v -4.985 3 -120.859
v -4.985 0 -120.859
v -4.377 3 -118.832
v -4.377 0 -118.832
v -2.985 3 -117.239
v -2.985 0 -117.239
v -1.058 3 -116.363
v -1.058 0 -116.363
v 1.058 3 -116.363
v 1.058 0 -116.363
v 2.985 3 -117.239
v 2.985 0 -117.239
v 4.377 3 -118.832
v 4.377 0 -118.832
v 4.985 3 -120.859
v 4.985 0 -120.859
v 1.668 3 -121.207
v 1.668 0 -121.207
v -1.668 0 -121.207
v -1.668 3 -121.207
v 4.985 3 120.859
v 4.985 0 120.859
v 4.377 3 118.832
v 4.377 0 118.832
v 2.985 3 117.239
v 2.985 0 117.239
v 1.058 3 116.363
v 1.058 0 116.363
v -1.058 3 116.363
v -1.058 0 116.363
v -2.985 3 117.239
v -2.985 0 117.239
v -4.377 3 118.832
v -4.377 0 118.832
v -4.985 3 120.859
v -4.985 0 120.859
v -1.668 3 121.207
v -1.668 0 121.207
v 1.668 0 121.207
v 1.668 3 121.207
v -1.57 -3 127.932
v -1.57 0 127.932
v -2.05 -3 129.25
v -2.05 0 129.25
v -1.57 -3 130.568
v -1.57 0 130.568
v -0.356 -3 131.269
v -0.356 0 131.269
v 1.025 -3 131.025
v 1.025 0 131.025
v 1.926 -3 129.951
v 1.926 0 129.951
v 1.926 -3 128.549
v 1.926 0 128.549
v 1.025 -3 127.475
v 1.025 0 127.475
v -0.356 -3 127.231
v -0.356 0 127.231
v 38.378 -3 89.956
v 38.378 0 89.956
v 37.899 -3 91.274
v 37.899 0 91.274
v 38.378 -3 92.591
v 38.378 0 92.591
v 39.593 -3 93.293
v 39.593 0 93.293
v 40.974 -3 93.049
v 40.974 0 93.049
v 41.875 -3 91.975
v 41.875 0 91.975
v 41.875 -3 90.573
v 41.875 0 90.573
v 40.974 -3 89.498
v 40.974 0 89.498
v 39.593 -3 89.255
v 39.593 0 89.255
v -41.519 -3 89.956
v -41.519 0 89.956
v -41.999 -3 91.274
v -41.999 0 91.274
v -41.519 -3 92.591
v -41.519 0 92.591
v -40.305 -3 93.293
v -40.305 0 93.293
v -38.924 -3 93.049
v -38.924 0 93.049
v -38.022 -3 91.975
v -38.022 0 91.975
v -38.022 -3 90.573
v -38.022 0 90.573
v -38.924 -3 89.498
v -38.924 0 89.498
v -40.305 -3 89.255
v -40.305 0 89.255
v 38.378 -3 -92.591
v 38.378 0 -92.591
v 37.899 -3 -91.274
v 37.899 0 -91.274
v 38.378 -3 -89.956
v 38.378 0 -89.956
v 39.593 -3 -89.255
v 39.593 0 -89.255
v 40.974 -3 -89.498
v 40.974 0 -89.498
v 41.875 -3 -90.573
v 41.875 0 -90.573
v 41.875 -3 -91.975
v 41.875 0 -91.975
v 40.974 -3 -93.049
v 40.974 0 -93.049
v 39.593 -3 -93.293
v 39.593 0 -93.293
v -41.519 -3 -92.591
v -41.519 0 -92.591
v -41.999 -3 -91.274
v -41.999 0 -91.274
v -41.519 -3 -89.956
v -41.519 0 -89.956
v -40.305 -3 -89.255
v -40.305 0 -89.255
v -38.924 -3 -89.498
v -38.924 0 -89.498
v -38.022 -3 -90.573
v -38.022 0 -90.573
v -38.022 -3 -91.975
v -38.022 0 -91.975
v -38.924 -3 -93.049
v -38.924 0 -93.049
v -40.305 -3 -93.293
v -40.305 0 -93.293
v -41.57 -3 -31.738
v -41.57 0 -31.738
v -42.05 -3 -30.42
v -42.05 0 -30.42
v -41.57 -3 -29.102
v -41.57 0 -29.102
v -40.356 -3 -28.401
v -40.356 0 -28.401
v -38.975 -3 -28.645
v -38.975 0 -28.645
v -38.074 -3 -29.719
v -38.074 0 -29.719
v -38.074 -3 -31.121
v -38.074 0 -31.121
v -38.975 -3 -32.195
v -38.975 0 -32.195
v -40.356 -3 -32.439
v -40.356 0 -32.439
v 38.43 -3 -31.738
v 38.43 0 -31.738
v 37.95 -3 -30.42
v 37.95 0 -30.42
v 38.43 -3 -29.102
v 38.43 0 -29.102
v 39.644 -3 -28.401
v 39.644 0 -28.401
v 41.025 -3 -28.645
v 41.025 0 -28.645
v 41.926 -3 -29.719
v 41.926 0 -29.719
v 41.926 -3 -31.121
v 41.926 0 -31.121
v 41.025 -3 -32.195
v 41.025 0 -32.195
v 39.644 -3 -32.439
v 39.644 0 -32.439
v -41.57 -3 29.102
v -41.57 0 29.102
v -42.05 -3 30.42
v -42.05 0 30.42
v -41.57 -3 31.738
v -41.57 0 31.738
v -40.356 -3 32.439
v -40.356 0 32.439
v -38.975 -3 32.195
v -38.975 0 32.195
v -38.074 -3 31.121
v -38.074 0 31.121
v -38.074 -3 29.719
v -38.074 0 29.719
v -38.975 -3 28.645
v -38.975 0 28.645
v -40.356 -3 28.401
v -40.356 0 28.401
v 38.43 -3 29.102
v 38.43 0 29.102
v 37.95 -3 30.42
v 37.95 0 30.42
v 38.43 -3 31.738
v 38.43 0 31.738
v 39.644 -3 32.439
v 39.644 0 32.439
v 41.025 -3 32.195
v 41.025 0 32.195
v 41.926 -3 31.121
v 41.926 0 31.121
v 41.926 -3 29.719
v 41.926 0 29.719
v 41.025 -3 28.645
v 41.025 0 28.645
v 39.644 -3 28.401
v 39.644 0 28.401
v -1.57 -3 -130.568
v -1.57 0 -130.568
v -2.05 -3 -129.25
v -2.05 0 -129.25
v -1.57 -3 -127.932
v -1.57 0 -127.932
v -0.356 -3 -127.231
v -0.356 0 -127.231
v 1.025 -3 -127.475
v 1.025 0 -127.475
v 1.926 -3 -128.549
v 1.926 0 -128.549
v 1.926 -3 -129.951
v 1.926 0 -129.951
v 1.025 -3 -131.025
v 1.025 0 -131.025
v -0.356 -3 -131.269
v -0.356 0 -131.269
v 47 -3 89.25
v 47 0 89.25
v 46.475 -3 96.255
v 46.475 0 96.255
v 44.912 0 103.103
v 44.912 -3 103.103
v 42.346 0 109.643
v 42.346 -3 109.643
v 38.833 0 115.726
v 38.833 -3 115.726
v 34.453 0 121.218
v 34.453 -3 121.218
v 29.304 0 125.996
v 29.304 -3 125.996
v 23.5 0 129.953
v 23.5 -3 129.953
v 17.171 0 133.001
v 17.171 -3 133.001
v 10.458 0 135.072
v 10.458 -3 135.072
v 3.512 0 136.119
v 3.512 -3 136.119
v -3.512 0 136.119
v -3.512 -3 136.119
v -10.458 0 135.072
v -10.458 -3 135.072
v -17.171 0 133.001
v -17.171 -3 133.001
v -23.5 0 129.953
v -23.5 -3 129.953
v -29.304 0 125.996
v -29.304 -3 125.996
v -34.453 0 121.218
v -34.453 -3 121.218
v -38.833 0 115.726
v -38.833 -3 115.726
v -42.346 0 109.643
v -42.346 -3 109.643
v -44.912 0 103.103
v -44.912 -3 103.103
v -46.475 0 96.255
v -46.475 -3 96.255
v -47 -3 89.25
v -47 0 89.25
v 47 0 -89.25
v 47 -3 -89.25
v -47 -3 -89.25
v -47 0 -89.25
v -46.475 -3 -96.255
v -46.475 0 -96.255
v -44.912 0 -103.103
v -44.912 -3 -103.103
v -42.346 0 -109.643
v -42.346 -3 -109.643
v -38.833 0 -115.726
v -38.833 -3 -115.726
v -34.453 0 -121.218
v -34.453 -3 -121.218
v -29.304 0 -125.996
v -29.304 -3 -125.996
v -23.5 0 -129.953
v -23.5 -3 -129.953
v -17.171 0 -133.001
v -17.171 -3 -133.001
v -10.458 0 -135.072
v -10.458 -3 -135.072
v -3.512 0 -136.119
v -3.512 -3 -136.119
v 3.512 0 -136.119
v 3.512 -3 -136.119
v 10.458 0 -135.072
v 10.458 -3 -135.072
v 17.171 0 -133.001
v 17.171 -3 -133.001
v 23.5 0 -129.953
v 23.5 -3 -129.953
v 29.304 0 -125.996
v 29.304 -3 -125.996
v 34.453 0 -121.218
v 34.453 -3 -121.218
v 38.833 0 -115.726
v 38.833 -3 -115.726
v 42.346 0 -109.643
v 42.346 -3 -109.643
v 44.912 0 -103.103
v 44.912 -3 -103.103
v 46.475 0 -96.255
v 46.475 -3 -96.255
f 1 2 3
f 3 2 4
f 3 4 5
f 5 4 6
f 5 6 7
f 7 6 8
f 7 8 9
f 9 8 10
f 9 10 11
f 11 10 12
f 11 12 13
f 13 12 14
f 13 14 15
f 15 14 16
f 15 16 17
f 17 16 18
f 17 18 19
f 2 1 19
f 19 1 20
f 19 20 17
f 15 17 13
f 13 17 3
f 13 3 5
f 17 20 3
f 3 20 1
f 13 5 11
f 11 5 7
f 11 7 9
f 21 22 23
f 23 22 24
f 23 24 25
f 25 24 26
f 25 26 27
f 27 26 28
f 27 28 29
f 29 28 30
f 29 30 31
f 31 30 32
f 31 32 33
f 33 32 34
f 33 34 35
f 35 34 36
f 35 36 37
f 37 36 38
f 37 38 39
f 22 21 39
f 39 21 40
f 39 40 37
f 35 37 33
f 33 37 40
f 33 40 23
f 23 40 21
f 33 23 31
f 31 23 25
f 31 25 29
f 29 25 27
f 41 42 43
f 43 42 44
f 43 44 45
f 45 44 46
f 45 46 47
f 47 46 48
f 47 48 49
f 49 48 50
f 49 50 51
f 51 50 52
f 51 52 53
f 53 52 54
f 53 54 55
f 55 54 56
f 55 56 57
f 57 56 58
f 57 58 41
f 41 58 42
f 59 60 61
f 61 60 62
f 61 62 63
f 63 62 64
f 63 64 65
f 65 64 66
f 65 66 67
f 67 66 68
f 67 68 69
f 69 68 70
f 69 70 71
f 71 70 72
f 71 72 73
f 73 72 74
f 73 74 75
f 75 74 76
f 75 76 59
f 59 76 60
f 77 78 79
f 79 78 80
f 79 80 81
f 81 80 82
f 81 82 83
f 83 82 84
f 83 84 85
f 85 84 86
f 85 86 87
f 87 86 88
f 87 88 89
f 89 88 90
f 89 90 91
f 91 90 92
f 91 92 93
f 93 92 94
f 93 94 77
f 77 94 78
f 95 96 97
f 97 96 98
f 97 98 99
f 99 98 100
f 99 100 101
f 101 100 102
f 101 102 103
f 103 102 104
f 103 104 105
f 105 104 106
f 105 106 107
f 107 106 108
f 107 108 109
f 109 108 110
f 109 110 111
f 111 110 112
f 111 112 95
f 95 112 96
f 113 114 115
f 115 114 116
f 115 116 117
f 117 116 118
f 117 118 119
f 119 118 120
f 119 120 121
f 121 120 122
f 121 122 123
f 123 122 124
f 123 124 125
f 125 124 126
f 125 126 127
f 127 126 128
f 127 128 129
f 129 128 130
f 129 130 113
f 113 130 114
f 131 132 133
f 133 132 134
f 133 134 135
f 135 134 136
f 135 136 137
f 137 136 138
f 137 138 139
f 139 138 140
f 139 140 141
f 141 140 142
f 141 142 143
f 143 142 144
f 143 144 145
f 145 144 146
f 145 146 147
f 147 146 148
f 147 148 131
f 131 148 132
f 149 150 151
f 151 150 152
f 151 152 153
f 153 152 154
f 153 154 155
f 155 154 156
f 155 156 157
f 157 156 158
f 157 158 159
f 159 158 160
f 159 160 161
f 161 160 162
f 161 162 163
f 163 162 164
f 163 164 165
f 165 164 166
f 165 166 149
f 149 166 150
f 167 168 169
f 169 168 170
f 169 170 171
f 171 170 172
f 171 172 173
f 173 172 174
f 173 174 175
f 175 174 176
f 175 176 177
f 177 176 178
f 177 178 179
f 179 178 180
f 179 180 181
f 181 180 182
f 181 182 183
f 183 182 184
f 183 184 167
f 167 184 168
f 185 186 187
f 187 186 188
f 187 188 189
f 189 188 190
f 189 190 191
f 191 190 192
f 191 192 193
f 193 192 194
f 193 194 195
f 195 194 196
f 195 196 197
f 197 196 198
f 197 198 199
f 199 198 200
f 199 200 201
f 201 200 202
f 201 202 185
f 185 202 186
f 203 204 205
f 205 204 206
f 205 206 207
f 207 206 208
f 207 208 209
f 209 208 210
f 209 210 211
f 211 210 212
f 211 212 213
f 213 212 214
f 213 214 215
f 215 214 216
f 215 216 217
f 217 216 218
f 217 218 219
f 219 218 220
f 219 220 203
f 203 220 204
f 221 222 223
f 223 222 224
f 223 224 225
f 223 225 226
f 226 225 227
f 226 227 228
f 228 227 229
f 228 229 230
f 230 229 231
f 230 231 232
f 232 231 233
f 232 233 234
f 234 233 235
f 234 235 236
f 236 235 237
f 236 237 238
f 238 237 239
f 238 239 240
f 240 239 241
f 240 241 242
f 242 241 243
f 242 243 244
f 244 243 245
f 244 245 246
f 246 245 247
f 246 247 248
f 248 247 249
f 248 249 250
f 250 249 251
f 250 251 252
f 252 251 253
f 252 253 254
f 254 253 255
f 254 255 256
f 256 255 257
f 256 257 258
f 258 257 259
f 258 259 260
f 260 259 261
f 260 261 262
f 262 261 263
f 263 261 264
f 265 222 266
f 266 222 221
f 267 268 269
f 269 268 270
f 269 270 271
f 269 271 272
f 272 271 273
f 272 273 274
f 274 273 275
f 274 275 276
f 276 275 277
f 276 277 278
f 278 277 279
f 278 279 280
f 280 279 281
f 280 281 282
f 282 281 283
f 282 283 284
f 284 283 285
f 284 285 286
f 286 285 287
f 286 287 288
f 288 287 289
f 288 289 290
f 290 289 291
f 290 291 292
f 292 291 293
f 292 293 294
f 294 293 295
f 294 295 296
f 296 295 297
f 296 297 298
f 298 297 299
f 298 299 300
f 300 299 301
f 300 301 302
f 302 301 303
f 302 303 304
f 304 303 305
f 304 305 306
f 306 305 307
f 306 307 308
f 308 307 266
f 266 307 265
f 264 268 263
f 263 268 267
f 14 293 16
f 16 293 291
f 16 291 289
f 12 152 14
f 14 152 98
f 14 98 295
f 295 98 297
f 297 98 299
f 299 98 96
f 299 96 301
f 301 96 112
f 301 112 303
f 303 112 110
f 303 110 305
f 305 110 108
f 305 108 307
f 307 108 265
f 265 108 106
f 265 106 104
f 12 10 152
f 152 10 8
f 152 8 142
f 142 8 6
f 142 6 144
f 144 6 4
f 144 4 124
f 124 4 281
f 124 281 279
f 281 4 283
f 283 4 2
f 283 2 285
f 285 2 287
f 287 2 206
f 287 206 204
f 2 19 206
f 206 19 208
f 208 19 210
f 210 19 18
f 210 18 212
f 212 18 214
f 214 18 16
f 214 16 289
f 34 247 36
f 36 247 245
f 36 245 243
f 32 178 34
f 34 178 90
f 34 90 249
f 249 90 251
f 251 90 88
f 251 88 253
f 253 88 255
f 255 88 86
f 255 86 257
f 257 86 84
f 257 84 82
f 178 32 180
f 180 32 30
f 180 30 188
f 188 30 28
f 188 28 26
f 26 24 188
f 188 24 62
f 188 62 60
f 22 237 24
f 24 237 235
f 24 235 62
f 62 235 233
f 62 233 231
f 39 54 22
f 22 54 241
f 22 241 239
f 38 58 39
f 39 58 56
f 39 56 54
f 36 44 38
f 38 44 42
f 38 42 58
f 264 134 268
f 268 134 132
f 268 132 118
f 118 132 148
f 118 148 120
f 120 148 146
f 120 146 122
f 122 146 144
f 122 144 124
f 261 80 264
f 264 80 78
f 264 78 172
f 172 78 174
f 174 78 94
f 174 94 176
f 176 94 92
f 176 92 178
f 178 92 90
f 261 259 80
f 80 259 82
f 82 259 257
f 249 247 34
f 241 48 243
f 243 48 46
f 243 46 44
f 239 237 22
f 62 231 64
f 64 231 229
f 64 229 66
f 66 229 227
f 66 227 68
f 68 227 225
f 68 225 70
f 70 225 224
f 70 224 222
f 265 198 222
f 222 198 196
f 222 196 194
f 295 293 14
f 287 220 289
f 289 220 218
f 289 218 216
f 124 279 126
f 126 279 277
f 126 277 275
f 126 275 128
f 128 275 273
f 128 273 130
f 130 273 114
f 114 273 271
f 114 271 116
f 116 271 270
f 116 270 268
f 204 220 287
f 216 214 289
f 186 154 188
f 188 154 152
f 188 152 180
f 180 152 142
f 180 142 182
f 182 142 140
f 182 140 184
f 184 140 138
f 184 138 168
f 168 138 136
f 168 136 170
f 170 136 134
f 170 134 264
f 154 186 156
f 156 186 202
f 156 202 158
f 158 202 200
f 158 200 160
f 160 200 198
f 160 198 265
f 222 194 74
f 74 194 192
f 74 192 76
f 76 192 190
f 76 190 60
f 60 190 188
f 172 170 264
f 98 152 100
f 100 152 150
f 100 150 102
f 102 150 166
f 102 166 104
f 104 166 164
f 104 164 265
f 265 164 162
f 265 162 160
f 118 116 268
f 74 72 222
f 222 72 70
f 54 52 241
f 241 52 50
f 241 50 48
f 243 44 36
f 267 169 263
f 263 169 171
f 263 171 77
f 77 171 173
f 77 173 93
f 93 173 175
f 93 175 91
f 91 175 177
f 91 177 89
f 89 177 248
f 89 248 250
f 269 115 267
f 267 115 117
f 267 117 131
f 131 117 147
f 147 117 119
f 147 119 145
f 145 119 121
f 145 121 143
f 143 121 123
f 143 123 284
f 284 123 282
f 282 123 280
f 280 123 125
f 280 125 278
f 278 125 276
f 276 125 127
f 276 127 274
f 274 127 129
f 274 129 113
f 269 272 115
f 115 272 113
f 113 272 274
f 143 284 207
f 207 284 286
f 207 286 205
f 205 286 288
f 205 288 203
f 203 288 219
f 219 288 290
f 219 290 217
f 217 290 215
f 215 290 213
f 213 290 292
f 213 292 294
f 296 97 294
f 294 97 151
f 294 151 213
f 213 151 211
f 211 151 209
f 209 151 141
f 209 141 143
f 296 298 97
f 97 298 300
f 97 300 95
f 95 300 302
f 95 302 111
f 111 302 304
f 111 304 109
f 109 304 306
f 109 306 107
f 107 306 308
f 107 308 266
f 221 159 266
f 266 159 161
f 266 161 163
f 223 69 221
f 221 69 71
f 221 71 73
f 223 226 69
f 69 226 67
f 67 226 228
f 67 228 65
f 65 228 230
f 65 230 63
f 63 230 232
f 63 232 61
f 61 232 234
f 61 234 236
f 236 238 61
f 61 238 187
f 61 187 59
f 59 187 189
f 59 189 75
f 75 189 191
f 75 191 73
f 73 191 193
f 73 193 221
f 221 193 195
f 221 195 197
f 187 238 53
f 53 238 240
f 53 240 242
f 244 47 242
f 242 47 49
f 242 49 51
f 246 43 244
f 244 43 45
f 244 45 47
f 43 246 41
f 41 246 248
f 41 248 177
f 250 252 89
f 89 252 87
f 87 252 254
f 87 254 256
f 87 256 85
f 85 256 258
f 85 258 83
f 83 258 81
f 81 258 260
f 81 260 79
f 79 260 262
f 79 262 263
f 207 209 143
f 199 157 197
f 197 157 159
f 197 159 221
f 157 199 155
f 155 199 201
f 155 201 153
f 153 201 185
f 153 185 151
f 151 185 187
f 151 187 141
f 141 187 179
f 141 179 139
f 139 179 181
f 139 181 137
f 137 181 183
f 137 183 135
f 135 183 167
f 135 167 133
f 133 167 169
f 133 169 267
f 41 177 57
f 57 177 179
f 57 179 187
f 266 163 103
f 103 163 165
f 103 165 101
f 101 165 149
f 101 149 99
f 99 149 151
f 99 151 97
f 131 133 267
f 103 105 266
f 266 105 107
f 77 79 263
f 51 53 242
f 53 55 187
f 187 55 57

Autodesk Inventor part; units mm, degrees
ref_plane "YZ Plane" through (0, 0, 0) normal (1, 0, 0) x (0, 1, 0)
ref_plane "XZ Plane" through (0, 0, 0) normal (0, 1, 0) x (-1, 0, 0)
ref_plane "XY Plane" through (0, 0, 0) normal (0, 0, 1) x (1, 0, 0)
sketch "Sketch1" plane through (0, 0, 0) normal (0, 1, 0) x (-1, 0, 0)
  line L0 (0, 121.25) -> (0, 121.25)
  line L1 (32, 89.25) -> (32, -89.25)
  line L2 (0, -121.25) -> (0, -121.25)
  line L3 (-32, -89.25) -> (-32, 89.25)
  line L4 (32, 0) -> (-32, 0) construction
  arc A0 (32, 89.25) -> (0, 121.25) centre (0, 89.25) ccw
  arc A1 (0, 121.25) -> (-32, 89.25) centre (0, 89.25) ccw
  arc A2 (0, -121.25) -> (32, -89.25) centre (0, -89.25) ccw
  arc A3 (-32, -89.25) -> (0, -121.25) centre (0, -89.25) ccw
  arc A4 (0, -136.25) -> (47, -89.25) centre (0, -89.25) ccw
  line L5 (47, -89.25) -> (47, 89.25)
  arc A5 (47, 89.25) -> (-34.4238, 121.25) centre (0, 89.25) ccw
  arc A6 (-34.4238, 121.25) -> (-47, 89.25) centre (0, 89.25) ccw
  line L6 (-47, 89.25) -> (-47, -89.25)
  arc A7 (-47, -89.25) -> (0, -136.25) centre (0, -89.25) ccw
  arc A8 (0, 129.25) -> (-40, 89.25) centre (0, 89.25) ccw construction
  line L7 (-40, 89.25) -> (-40, -89.25) construction
  arc A9 (-40, -89.25) -> (24, -121.25) centre (0, -89.25) ccw construction
  arc A10 (24, -121.25) -> (40, -89.25) centre (0, -89.25) ccw construction
  line L8 (40, -89.25) -> (40, 89.25) construction
  arc A11 (40, 89.25) -> (0, 129.25) centre (0, 89.25) ccw construction
  circle A12 centre (0, -129.25) radius 2.05
  circle A13 centre (0, 129.25) radius 2.05
  circle A14 centre (-39.9488, 91.2737) radius 2.05
  circle A15 centre (39.9488, 91.2737) radius 2.05
  circle A16 centre (-40, 30.42) radius 2.05
  circle A17 centre (40, 30.42) radius 2.05
  circle A18 centre (0, -129.25) radius 2.05
  circle A19 centre (-39.9488, -91.2737) radius 2.05
  circle A20 centre (39.9488, -91.2737) radius 2.05
  circle A21 centre (-40, -30.42) radius 2.05
  circle A22 centre (40, -30.42) radius 2.05
  circle A23 centre (0, 121.25) radius 5
  circle A24 centre (0, -121.25) radius 5
  point P0 (0, 0)
  point P1 (32, -121.25)
  point P2 (32, 121.25)
  point P3 (-32, -121.25)
  point P4 (0, 0)
  point P5 (-40, 0)
  point P6 (40, 0)
  point P7 (4.9847, -120.8594)
  point P8 (-4.9847, -120.8594)
  point P9 (0, -121.25)
  point P10 (-4.9847, 120.8594)
  point P11 (4.9847, 120.8594)
  point P12 (0, 121.25)
  dimension "d0" = 242.5
  dimension "d1" = 64
  dimension "d2" = 32
  dimension "d3" = 32
  dimension "d4" = 15
  dimension "d5" = 8
  dimension "d6" = 4.1
  dimension "d7" = 4.1
  dimension "d10" = 87.1
  dimension "d14" = 87.1
  dimension "d16" = 4.1
  dimension "d17" = 30.42
  dimension "d18" = 4.1
  dimension "d19" = 30.42
  dimension "d20" = 10
  dimension "d21" = 10
extrude "Extrusion1" add sketch "Sketch1" against normal blind 3 contours L1 A2 A24 A3 L3 A1 A23 A0 | A23 A1 A0 | A0 A1 A23 | A24 A3 A2 | A2 A3 A24 | A7 L6 A6 A5 L5 A4
extrude "Extrusion2" add sketch "Sketch1" along normal blind 3 contours A23 A1 A0 | A2 A3 A24 picked at (0.9662, 119.6201) picked at (0.9662, -119.6201)
properties part number "top_housing_base-plate"
